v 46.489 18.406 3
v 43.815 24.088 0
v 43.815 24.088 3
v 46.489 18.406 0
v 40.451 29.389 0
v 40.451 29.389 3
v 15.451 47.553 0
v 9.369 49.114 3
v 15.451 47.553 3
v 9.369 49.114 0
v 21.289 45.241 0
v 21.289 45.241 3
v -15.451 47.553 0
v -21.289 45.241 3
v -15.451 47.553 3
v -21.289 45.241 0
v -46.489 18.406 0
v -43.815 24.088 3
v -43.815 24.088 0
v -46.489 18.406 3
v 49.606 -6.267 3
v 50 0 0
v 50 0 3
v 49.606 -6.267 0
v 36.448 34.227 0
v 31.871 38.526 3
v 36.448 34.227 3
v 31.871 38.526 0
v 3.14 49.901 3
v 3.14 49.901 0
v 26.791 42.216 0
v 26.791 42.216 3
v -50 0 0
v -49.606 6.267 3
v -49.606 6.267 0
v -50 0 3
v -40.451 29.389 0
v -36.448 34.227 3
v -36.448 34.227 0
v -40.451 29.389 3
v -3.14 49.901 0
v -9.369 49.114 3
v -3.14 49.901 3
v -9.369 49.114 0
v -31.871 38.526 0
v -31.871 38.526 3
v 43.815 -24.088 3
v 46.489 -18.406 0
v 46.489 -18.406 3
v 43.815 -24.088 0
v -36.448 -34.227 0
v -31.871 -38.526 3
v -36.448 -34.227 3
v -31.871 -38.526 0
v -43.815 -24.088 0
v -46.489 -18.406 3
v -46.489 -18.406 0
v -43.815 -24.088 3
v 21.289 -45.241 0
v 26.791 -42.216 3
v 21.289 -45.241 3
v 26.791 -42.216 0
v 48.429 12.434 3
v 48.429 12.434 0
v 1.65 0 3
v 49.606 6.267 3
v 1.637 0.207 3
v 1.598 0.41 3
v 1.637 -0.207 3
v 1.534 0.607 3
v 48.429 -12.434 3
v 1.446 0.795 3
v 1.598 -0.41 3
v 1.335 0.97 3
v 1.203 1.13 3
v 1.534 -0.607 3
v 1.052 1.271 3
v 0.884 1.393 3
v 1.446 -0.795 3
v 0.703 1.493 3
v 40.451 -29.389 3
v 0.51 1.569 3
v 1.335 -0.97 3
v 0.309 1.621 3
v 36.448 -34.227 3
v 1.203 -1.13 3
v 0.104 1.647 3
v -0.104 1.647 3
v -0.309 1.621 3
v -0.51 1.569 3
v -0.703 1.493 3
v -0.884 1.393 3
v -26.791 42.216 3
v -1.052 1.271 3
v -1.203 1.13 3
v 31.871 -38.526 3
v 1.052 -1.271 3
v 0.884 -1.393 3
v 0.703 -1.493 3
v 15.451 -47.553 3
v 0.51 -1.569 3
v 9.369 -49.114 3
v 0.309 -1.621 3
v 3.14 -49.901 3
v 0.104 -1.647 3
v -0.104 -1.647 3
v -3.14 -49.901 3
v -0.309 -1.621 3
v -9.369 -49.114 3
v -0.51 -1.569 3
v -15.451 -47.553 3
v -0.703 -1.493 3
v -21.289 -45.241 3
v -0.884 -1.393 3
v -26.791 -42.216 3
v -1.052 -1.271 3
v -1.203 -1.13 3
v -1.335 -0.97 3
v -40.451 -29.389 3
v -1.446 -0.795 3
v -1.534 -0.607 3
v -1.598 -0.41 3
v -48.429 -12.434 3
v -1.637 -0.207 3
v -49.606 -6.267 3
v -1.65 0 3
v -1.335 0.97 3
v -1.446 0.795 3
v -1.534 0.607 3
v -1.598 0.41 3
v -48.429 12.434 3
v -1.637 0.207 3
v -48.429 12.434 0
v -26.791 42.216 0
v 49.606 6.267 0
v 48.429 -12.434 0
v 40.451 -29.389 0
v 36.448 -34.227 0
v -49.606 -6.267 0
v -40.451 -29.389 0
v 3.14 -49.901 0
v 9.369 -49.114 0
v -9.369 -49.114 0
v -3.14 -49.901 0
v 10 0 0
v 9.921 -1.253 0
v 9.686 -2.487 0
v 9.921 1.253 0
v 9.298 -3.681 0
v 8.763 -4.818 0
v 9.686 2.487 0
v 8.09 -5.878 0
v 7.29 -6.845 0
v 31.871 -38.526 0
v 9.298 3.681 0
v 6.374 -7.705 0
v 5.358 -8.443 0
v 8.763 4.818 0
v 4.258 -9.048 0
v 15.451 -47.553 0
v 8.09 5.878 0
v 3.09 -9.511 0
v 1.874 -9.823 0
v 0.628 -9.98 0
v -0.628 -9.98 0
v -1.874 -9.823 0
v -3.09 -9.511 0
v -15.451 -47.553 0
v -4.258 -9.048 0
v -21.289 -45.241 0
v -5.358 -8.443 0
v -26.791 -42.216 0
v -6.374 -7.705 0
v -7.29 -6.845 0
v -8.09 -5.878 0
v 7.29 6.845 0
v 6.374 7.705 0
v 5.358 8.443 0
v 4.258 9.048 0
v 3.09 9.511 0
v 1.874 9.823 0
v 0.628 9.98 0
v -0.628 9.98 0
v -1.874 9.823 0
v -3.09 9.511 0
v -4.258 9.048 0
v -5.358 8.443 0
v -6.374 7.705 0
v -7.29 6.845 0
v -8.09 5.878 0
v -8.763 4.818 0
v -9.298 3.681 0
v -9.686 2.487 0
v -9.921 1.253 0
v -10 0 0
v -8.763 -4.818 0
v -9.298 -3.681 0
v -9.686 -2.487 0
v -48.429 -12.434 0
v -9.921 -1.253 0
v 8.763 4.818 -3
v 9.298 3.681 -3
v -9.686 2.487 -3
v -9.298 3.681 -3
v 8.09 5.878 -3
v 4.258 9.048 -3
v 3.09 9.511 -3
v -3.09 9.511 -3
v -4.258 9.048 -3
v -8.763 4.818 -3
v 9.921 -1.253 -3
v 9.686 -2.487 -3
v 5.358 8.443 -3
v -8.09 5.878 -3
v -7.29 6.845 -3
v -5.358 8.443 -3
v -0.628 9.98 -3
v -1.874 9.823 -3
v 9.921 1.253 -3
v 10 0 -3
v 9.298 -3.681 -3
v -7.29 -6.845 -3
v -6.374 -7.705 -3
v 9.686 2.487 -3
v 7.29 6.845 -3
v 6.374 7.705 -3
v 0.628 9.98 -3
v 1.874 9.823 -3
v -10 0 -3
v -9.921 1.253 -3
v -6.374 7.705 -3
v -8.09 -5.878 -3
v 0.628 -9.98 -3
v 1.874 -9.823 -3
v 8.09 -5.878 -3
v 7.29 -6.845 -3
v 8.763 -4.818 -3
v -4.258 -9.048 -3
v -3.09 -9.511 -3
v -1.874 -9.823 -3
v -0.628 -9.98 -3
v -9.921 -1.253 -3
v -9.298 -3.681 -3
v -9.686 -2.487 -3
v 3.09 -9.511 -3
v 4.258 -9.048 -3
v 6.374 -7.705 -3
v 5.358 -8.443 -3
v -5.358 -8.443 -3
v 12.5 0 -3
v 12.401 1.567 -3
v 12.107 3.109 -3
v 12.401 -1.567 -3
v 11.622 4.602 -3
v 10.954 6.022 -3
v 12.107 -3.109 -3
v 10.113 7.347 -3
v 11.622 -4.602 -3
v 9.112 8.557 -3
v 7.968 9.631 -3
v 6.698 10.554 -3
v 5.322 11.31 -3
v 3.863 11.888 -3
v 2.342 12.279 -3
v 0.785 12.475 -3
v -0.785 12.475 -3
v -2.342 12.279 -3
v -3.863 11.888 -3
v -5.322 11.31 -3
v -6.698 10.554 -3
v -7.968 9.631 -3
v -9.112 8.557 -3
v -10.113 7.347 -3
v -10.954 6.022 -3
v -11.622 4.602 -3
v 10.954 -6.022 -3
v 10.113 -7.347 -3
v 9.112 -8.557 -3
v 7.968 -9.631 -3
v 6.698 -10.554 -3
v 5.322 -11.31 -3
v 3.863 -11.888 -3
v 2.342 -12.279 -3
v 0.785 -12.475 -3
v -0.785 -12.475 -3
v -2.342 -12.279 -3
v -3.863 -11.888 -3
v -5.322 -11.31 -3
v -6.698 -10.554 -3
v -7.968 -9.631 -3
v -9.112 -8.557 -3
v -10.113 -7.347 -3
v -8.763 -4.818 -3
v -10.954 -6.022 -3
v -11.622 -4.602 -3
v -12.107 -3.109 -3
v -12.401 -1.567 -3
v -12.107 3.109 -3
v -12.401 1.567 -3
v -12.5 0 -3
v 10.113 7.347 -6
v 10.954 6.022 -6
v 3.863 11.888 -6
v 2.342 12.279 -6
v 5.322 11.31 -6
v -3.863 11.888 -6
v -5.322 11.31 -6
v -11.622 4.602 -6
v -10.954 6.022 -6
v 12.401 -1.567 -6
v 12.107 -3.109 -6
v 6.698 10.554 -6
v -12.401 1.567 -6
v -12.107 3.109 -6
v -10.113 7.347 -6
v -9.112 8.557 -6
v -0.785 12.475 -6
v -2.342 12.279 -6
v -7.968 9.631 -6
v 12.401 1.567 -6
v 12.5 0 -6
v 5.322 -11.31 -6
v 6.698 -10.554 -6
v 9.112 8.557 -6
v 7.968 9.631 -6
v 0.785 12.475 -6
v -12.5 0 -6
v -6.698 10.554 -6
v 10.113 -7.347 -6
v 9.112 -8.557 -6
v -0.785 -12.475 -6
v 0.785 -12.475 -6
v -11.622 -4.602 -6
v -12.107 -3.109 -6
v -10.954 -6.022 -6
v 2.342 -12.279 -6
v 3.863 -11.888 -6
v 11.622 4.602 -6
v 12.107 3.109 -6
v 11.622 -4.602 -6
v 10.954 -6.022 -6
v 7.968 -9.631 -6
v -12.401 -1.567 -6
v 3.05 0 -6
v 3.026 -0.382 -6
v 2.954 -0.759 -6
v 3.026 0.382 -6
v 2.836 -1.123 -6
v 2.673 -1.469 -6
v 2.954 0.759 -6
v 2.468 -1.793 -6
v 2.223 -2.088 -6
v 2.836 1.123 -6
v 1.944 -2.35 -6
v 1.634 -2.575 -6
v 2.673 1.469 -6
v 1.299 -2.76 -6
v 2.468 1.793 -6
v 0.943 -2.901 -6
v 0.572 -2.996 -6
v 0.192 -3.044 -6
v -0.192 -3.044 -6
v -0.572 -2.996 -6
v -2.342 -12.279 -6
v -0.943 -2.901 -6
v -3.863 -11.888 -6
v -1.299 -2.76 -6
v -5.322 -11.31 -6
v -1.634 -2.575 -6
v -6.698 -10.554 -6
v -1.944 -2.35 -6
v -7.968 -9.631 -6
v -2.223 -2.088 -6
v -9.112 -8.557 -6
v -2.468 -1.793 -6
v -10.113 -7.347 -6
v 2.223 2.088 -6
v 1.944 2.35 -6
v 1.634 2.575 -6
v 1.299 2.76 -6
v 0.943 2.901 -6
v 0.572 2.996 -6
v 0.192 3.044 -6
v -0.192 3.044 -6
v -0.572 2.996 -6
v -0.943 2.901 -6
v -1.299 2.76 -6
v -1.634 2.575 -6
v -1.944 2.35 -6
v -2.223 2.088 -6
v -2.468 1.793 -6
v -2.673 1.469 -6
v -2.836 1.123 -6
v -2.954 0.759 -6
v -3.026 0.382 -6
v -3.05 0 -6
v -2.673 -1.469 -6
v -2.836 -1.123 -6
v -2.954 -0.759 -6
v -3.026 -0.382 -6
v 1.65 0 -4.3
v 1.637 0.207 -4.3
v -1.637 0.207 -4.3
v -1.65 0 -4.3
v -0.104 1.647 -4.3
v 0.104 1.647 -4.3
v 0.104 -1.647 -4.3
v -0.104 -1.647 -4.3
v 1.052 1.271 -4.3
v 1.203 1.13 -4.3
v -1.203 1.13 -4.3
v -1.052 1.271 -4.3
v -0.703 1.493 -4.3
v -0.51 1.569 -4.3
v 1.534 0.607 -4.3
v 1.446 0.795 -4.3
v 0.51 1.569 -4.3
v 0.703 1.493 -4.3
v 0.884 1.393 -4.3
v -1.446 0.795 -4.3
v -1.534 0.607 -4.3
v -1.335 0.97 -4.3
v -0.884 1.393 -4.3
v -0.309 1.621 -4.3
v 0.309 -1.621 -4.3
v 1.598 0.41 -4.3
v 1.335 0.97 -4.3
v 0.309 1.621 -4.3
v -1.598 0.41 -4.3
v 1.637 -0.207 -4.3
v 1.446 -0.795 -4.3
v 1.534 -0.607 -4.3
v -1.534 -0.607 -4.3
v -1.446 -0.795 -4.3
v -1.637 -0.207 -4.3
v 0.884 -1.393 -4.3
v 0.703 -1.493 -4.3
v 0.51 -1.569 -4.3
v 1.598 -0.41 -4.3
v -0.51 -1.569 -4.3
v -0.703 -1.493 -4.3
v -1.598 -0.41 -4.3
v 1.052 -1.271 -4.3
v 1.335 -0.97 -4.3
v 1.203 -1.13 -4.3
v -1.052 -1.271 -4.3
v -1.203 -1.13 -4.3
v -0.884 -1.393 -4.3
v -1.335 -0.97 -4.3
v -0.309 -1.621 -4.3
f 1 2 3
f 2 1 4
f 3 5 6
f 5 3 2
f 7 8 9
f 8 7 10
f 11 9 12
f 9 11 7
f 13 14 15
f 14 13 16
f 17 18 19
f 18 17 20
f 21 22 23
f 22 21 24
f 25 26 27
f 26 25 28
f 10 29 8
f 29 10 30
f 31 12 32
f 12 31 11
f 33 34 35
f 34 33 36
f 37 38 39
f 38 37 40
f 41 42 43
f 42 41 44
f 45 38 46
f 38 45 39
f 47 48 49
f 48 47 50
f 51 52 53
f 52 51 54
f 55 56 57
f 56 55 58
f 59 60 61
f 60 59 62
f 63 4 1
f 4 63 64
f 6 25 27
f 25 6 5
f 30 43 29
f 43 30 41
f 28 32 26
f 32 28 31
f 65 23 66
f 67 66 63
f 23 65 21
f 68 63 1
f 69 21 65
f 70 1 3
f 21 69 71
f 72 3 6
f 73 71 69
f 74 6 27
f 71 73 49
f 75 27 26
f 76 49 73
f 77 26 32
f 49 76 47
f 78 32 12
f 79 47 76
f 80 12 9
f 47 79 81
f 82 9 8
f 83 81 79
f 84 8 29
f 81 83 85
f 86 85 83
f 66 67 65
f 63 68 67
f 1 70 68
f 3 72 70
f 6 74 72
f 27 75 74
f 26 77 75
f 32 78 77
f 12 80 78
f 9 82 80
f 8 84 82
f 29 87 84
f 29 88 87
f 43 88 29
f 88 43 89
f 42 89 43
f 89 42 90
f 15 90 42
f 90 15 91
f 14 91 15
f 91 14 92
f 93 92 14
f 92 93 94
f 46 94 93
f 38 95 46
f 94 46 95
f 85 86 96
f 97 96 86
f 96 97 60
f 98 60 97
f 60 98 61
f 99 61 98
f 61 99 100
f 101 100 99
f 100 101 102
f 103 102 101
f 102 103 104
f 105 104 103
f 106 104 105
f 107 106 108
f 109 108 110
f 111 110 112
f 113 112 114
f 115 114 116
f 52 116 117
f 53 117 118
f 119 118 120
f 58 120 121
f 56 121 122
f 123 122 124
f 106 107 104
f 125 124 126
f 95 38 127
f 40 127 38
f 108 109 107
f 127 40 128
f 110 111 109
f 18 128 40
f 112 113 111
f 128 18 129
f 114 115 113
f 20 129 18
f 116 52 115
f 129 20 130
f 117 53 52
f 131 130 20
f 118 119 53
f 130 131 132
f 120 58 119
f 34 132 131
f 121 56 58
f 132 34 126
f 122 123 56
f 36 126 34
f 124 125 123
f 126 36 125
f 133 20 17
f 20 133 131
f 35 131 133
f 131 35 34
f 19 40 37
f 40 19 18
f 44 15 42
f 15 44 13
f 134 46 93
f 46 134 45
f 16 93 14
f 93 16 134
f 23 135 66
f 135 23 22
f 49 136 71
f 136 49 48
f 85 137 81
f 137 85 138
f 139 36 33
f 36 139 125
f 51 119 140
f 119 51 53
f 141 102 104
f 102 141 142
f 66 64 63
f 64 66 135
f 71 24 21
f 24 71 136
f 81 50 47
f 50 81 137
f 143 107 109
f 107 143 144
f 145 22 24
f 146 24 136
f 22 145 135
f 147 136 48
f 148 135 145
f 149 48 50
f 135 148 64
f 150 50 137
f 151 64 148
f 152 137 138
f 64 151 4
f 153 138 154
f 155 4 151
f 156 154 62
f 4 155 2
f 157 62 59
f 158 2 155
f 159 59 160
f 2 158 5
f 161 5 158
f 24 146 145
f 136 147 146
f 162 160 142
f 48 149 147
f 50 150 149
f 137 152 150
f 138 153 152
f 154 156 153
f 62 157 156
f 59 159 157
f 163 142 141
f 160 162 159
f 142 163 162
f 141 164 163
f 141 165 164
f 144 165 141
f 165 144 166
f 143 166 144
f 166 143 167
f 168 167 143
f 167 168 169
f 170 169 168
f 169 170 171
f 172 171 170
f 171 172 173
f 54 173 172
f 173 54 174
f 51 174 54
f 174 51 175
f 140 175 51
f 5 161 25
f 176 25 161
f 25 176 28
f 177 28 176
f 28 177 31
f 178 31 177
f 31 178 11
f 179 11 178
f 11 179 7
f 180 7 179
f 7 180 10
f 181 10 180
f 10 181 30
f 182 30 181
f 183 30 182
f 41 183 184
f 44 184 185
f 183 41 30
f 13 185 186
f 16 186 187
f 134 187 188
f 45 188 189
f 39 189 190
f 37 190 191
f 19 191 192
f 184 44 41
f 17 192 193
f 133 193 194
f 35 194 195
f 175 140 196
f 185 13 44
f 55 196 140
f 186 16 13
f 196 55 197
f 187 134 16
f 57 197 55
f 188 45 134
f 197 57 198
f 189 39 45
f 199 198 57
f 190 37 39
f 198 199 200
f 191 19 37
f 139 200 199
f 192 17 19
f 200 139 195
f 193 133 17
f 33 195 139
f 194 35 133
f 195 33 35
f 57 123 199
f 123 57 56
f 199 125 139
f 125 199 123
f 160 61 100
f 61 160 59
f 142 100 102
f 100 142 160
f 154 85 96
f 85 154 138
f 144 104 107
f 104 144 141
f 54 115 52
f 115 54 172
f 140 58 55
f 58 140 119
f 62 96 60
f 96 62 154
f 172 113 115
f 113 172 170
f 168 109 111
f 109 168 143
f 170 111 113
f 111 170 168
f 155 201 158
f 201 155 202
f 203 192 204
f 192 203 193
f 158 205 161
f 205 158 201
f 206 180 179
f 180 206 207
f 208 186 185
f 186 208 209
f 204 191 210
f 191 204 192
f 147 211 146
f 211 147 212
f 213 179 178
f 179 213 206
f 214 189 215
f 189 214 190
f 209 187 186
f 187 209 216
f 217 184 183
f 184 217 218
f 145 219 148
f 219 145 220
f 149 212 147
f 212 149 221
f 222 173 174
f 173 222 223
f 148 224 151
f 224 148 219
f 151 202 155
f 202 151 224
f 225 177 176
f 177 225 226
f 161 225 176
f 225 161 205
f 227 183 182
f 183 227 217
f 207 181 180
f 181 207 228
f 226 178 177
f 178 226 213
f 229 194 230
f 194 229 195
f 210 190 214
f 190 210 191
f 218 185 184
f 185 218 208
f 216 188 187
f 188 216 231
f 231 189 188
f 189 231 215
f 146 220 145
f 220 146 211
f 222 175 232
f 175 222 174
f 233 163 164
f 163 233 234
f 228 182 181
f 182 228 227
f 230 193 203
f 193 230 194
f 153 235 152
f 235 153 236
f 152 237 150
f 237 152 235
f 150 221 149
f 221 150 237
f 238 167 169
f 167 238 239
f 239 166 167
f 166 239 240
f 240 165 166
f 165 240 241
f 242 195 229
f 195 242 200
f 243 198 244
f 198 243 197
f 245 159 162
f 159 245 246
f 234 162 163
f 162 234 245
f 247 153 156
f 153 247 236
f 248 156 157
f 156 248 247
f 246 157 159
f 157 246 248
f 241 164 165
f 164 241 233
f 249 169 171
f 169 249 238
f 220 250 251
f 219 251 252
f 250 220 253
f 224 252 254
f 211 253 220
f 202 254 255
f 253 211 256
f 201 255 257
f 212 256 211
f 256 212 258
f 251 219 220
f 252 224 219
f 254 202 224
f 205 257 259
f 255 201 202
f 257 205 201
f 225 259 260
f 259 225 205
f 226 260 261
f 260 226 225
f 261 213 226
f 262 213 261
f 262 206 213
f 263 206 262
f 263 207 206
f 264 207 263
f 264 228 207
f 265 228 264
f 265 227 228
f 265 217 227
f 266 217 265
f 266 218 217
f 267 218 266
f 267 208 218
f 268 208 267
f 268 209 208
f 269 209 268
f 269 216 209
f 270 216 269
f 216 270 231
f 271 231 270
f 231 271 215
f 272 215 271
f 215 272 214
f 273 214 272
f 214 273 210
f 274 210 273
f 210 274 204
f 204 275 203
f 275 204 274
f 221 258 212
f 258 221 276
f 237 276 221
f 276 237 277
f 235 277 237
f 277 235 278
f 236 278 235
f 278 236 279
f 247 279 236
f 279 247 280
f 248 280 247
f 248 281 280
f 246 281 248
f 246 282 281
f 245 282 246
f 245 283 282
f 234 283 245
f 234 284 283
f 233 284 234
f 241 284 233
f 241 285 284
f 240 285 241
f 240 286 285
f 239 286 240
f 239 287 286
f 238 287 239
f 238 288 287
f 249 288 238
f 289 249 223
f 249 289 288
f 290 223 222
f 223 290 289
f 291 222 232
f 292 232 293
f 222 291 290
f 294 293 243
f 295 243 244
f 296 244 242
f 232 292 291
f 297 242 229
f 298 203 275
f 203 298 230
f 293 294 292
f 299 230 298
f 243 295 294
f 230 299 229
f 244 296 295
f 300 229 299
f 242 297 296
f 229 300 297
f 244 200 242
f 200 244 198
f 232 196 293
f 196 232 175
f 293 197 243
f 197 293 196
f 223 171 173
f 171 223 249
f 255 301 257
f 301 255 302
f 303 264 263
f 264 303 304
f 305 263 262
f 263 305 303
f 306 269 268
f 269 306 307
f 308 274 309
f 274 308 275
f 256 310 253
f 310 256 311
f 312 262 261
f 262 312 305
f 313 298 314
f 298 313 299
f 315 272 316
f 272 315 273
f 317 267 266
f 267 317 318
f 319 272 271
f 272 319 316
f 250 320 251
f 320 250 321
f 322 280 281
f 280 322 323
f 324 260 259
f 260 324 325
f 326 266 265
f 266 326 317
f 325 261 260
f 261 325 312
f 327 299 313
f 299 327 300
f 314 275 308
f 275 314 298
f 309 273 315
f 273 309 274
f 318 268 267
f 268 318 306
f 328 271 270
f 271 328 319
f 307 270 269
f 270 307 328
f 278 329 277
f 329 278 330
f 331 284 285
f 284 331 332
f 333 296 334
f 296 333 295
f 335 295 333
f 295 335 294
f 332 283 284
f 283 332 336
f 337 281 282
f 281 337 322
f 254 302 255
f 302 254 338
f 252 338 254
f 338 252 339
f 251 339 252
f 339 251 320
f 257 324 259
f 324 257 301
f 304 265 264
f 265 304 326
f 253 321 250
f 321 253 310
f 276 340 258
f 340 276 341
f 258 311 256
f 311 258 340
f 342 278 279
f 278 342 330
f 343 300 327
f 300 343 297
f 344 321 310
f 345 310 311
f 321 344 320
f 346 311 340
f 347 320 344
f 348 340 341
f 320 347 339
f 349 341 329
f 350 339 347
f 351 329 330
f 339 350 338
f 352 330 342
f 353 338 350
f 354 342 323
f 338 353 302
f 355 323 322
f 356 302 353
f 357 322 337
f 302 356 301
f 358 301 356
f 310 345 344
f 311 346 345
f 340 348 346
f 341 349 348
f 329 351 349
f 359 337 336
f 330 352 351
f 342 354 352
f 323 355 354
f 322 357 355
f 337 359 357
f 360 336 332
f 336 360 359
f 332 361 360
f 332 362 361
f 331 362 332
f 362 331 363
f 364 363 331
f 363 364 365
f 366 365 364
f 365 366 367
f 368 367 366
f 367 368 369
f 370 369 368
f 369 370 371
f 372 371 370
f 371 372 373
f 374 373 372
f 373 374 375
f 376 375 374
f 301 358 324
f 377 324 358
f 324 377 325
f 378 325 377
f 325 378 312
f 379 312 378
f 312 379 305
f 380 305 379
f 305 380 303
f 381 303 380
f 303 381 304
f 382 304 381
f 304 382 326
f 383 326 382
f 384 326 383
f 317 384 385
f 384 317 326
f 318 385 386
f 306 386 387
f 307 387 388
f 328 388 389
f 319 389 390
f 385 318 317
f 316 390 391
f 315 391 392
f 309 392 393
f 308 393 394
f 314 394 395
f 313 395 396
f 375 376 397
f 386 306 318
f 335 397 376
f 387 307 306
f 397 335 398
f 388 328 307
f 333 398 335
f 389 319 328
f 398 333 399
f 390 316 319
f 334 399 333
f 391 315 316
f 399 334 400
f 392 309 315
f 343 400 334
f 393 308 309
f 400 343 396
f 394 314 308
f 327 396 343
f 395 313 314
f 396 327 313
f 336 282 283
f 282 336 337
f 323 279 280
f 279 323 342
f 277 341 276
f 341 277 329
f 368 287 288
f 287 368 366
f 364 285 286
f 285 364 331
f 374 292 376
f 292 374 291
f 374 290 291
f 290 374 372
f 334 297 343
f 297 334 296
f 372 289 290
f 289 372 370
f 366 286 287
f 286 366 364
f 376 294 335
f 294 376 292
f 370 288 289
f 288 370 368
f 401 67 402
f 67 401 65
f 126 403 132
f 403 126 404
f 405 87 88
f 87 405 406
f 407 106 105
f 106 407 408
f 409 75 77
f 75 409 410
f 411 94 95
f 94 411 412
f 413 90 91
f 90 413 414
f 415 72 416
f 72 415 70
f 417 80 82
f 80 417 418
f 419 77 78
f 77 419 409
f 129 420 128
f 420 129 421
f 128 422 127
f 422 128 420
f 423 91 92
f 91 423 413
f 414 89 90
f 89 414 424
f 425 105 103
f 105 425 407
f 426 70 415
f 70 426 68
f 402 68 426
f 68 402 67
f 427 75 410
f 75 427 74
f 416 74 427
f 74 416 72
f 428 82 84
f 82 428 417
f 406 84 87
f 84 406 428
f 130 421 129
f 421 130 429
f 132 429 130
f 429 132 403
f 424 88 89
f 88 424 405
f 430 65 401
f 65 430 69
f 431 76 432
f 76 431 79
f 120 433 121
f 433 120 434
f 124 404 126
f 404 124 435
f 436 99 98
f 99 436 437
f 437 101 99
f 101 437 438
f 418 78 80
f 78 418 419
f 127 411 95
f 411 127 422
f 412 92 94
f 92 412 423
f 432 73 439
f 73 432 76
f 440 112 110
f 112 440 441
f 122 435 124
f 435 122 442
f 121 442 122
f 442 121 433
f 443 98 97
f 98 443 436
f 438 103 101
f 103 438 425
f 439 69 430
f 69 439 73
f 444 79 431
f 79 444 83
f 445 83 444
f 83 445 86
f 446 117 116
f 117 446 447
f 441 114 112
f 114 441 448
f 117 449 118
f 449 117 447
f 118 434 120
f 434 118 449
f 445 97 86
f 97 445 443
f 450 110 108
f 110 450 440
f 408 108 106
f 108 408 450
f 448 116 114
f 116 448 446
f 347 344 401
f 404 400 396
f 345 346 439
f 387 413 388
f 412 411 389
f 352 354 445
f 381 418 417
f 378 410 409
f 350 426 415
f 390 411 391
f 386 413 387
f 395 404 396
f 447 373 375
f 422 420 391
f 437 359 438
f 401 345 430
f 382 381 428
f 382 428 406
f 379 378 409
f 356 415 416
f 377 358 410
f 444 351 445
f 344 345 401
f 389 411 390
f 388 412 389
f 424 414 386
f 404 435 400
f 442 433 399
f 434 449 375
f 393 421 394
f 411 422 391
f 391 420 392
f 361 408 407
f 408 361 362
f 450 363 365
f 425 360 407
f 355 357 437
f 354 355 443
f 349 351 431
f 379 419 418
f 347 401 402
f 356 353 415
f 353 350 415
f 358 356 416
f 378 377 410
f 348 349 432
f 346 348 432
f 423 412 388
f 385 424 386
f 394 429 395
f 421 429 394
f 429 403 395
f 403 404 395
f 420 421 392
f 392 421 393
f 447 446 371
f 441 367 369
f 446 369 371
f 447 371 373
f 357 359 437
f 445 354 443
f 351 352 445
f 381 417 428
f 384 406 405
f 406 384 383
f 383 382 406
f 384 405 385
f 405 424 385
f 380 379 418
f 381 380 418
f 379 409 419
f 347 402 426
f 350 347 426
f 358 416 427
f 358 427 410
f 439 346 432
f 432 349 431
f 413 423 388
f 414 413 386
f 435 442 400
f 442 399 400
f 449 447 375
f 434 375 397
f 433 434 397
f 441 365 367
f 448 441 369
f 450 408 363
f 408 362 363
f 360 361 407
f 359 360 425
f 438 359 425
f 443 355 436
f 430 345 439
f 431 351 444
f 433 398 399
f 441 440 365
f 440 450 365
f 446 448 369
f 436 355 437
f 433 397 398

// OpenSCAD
// Generated by SolidPython 1.1.3 on 2022-12-29 10:55:18
$fn = 50;


difference() {
	union() {
		translate(v = [0, 0, 0]) {
			rotate(a = [0, 0, 0]) {
				cylinder(h = 3, r = 50.0000000000);
			}
		}
		translate(v = [0, 0, -3]) {
			rotate(a = [0, 0, 0]) {
				cylinder(h = 3, r = 10.0000000000);
			}
		}
		translate(v = [0, 0, -6]) {
			rotate(a = [0, 0, 0]) {
				cylinder(h = 3, r = 12.5000000000);
			}
		}
	}
	union() {
		translate(v = [0, 0, -6]) {
			rotate(a = [0, 0, 0]) {
				union() {
					translate(v = [0, 0, 0]) {
						rotate(a = [0, 0, 0]) {
							translate(v = [0, 0, -50]) {
								rotate(a = [0, 0, 0]) {
									cylinder(h = 100, r = 1.6500000000);
								}
							}
						}
					}
					translate(v = [0, 0, 0]) {
						rotate(a = [0, 0, 0]) {
							cylinder(h = 1.7000000000, r1 = 3.0500000000, r2 = 1.6500000000);
						}
					}
				}
			}
		}
	}
}
/***********************************************
*********      SolidPython code:      **********
************************************************
 
from solid import *
import os
import subprocess

import OPSC_library_gen

defined_objects = {}

radius_dict = {}
radius_dict['M6'] = 6.5/2
radius_dict['M3'] = 3.3/2

countersunk_dict = {}
countersunk_dict['M3'] = {}
countersunk_dict['M3']['little_rad'] = radius_dict['M3']
countersunk_dict['M3']['big_rad'] = (5.5+0.6)/2
countersunk_dict['M3']['height'] = 1.7


def opsc_make_object(filename, objects, save_all=False,resolution=50, layers = 1, tilediff = 200):
    os.makedirs(os.path.dirname(filename), exist_ok=True)
    final_object = opsc_get_object(objects)
    # Save the final object to the specified filename
    
    scad_render_to_file(final_object, filename, file_header='$fn = %s;' % resolution, include_orig_code=True)
    if save_all:
        saveToAll(filename)
    filename = filename.replace(".scad","-laser.scad")
    scad_render_to_file(getLaser(final_object, layers=layers, tilediff=tilediff), filename, file_header='$fn = %s;' % resolution, include_orig_code=True)
    if save_all:
        saveToAll(filename)


def opsc_get_object(objects):
    # Create the solidpython objects
    positive_objects = [get_opsc_item(obj) for obj in objects if obj['type'] == 'positive']
    negative_objects = [get_opsc_item(obj) for obj in objects if obj['type'] == 'negative']
    # Union the positive objects
    positive_object = union()(*positive_objects)
    # Union the negative objects
    negative_object = union()(*negative_objects)
    # Create the final object by subtracting the negative objects from the positive objects
    return difference()(positive_object, negative_object)

def get_opsc_item(params):
    # A dictionary to map radius string values to numerical values
    #radius_dict = {'small': 5, 'medium': 10, 'large': 15}
    # An array of function names for basic shapes
    basic_shapes = ['cube', 'sphere', 'cylinder']
    
    # An array of function names for other shapes
    other_shapes = ['hole', 'slot', 'rounded_rectangle', 'countersunk']
    


    # Convert radius to r if present, and remove radius from the params dictionary
    if 'radius' in params:
        if isinstance(params['radius'], str):
            # Use the radius_dict to map the radius string value to a numerical value
            params['r'] = radius_dict[params['radius']]
        else:
            params['r'] = params['radius']
        del params['radius']
    

    # Check if the object type is a basic shape
    if params['shape'] in basic_shapes:
        # Remove shape and unexpected dictionary values
        allowed_keys = {'size', 'r', 'r1', 'r2', 'd', 'h', 'rw', 'rh', 'dw', 'dh'}
        shape_params = {k: v for k, v in params.items() if k in allowed_keys}

        # Call the corresponding function for the shape parameter, using ** notation to pass the shape_params dictionary as keyword arguments
        return get_opsc_transform(params,globals()[params['shape']](**shape_params))
    
    # If the object type is not a basic shape, check if it's a defined object or one of the other shapes
    elif params['shape'] in other_shapes:
        # Call the corresponding function for the shape parameter, passing the params dictionary as an argument
        p2 = copy.deepcopy(params)
        p2["pos"] = [0,0,0]
        return get_opsc_transform(params,globals()[params['shape']](p2))
    
    # If the object is not a basic shape or a defined object, try to import it from a .scad file
    else:
        obj = defined_objects[params['shape']]
        return get_opsc_transform(params,obj)

def get_opsc_transform(params, solid_obj):
    # Rotate the object based on the 'rot' field in the params dictionary, or the 'rotX', 'rotY', and 'rotZ' fields if 'rot' is not present
    rot = params.get('rot', [])
    if rot:
        rotX, rotY, rotZ = rot
    else:
        rotX = params.get('rotX', 0)
        rotY = params.get('rotY', 0)
        rotZ = params.get('rotZ', 0)
    solid_obj = rotate([rotX, rotY, rotZ])(solid_obj)

    # Translate the object based on the 'pos' field in the params dictionary, or the 'x', 'y', and 'z' fields if 'pos' is not present
    pos = params.get('pos', [])
    if pos:
        x, y, z = pos
    else:
        x = params.get('x', 0)
        y = params.get('y', 0)
        z = params.get('z', 0)
    solid_obj = translate([x, y, z])(solid_obj)
    return solid_obj


import random

def opsc_easy(type, shape, **kwargs):
    obj = {
        'type': type,
        'shape': shape
    }
    for param in ['size', 'r', 'r1', 'r2', 'd', 'h', 'rw', 'rh', 'dw', 'dh', 'pos', 'x', 'y', 'z', 'rot', 'rotX', 'rotY', 'rotZ', "w"]:
        if param in kwargs:
            obj[param] = kwargs[param]
    return obj

def hole(params):
    p2 = copy.deepcopy(params)  
    # Check if the radius is a string and replace it with the corresponding value from the dictionary
    if isinstance(p2['r'], str):
        p2['r'] = radius_dict[p2['r']]
    
    # Set the height to 100 if not specified
    if 'h' not in p2:
        p2['h'] = 100
        p2["pos"] = [0,0,-50]
    p2["center"] = True
    # Create the cylinder object
    p2["shape"] = "cylinder"
    p2["type"] = "positive"

    return get_opsc_item(p2)

import copy

def countersunk(params):
    p2 = copy.deepcopy(params)
    counter_rad = p2['r']
    p2['r'] = radius_dict[p2['r']]
    hp = copy.deepcopy(p2)
    hp["type"] = "positive"
    hp["shape"] = "hole"
    hol = get_opsc_item(hp)
    cp = copy.deepcopy(p2)
    cp["h"] = countersunk_dict[counter_rad]["height"]
    cp["r2"] = countersunk_dict[counter_rad]["little_rad"]
    cp["r1"] = countersunk_dict[counter_rad]["big_rad"]
    del cp["r"]
    cp["type"] = "positive"
    cp["shape"] = "cylinder"
    cp["pos"] = [0,0,0]
    top = get_opsc_item(cp)
    return union()(hol,top)



def slot(params):  
    p2 = copy.deepcopy(params) 
    if isinstance(p2['r'], str):
        p2['r'] = radius_dict[p2['r']]
    p2["type"] = "positive"
    p2["shape"] = "hole"
    del p2["rot"]
    p2["pos"] = [0,0,0]
    left = copy.deepcopy(p2)
    right = copy.deepcopy(p2)
    left["pos"][0] = p2["w"] / 2 - p2["r"] 
    
    right["pos"][0] = -p2["w"] / 2 + p2["r"] 
    pass
    leftObj = get_opsc_item(left)
    rightObj = get_opsc_item(right)
    return hull()(leftObj, rightObj)

def rounded_rectangle(params):   
    p2 = copy.deepcopy(params) 
    p2["h"] = p2["size"][2]
    p2["pos"] = p2.get("pos", [0, 0, 0]) 
    p2["type"] = "positive"
    p2["shape"] = "hole"
    p2["pos"] = [0,0,0]
    
    if 'rot' in p2:
        del p2["rot"]   
    if 'r' not in p2:
        p2["r"] = 5 
    tl = copy.deepcopy(p2)
    tr = copy.deepcopy(p2)
    bl = copy.deepcopy(p2)
    br = copy.deepcopy(p2)
    tl["pos"][0] = -(p2["size"][0] - p2["r"]*2)/2
    tl["pos"][1] = (p2["size"][1] - p2["r"]*2)/2
    tr["pos"][0] = (p2["size"][0] - p2["r"]*2)/2
    tr["pos"][1] = (p2["size"][1] - p2["r"]*2)/2
    bl["pos"][0] = -(p2["size"][0] - p2["r"]*2)/2
    bl["pos"][1] = -(p2["size"][1] - p2["r"]*2)/2
    br["pos"][0] = (p2["size"][0] - p2["r"]*2)/2
    br["pos"][1] = -(p2["size"][1] - p2["r"]*2)/2
    del tl["size"]
    del tr["size"]
    del bl["size"]
    del br["size"]
    tlo = get_opsc_item(tl)
    tro = get_opsc_item(tr)
    blo = get_opsc_item(bl)
    bro = get_opsc_item(br)    
    return hull()(tlo, tro, blo, bro)



def import_scad_object(filename):
    # Import the .scad file and convert it to a solidpython object
    #filename = "parts"
    obj = import_scad(filename)
    return obj.main()
    


import os
import solid as solidpython

# A dictionary to store the defined objects


def load_scad_objects():
    OPSC_library_gen.gen_library(defined_objects)

import random

def test(num_objects):
    objects = []
    for i in range(num_objects):
        # Choose a random shape
        #shape = random.choice(['cube', 'sphere', 'cylinder', 'hole', 'slot', "rounded_rectangle"])
        shape = random.choice(["rounded_rectangle"])

        # Choose a random type
        type = random.choice(['positive', 'negative'])
        
        # Create an empty object dictionary
        obj = {'shape': shape, 'type': type}
        
        # Set shape-specific parameters
        if obj['shape'] in ['cube']:
            obj['size'] =  [random.uniform(5, 15), random.uniform(5, 15), random.uniform(5, 15)]
        if obj['shape'] in ['rounded_rectangle']:
            obj['size'] =  [random.uniform(5, 15), random.uniform(5, 15), random.uniform(5, 15)]
            obj['r'] = random.uniform(0.5, 5)
        elif obj['shape'] == 'sphere':
            obj['r'] = random.uniform(5, 15)
        elif obj['shape'] in ['cylinder', 'hole']:
            obj['r'] = random.uniform(0.5, 5)
            obj['h'] = random.uniform(5, 15)
        elif obj['shape'] == 'slot':
            obj['r'] = random.uniform(0.5, 5)
            obj['h'] = random.uniform(5, 15)
            obj['w'] = random.uniform(5, 15)
        
        # Set a random position and rotation
        obj['pos'] = [random.uniform(-20, 20), random.uniform(-20, 20), random.uniform(-20, 20)]
        obj['rot'] = [random.uniform(-180, 180), random.uniform(-180, 180), random.uniform(-180, 180)]
        
        # Add the object to the list
        objects.append(obj)
    return objects

####### old file saving
def saveToAll(fileIn):
    saveToDxf(fileIn)
    saveToPng(fileIn)
    saveToStl(fileIn)
    saveToSvg(fileIn)

def saveToDxf(fileIn, fileOut=""):
    if fileOut == "":
        fileOut = fileIn.replace(".scad",".dxf")
    saveToFile(fileIn, fileOut)
    
def saveToPng(fileIn, fileOut="",extra="--render"):
    if fileOut == "":
        fileOut = fileIn.replace(".scad",".png")
    saveToFile(fileIn, fileOut)

def saveToStl(fileIn, fileOut=""):
    if fileOut == "":
        fileOut = fileIn.replace(".scad",".stl")
    saveToFile(fileIn, fileOut)
    
def saveToSvg(fileIn, fileOut=""):
    if fileOut == "":
        fileOut = fileIn.replace(".scad",".svg")
    saveToFile(fileIn, fileOut)

def saveToFile(fileIn, fileOut,extra=""):
    extra = extra + " --colorscheme Tomorrow"

    launchStr = 'openscad -o "' + fileOut + '"' + extra + ' "' + fileIn + '"'
    if ".png" in fileOut:
        launchStr = launchStr + " --render"
    print("            saveToFile launch string: " + launchStr)
    subprocess.run(launchStr)
    x=0

def getLaser(final_object,start=0,layers=1,thickness=-3,tilediff=200):
        rv= []

        for x in range(layers):
            rv.append(translate([0,x*tilediff,0])(
                    projection()(
                        intersection()(translate([-500,-500,start+x*thickness])(cube(size=[1000,1000,0.1])),
                            final_object
                        )
                    )
            )
            )
            
        return union()(rv)

load_scad_objects() 
 
************************************************/
